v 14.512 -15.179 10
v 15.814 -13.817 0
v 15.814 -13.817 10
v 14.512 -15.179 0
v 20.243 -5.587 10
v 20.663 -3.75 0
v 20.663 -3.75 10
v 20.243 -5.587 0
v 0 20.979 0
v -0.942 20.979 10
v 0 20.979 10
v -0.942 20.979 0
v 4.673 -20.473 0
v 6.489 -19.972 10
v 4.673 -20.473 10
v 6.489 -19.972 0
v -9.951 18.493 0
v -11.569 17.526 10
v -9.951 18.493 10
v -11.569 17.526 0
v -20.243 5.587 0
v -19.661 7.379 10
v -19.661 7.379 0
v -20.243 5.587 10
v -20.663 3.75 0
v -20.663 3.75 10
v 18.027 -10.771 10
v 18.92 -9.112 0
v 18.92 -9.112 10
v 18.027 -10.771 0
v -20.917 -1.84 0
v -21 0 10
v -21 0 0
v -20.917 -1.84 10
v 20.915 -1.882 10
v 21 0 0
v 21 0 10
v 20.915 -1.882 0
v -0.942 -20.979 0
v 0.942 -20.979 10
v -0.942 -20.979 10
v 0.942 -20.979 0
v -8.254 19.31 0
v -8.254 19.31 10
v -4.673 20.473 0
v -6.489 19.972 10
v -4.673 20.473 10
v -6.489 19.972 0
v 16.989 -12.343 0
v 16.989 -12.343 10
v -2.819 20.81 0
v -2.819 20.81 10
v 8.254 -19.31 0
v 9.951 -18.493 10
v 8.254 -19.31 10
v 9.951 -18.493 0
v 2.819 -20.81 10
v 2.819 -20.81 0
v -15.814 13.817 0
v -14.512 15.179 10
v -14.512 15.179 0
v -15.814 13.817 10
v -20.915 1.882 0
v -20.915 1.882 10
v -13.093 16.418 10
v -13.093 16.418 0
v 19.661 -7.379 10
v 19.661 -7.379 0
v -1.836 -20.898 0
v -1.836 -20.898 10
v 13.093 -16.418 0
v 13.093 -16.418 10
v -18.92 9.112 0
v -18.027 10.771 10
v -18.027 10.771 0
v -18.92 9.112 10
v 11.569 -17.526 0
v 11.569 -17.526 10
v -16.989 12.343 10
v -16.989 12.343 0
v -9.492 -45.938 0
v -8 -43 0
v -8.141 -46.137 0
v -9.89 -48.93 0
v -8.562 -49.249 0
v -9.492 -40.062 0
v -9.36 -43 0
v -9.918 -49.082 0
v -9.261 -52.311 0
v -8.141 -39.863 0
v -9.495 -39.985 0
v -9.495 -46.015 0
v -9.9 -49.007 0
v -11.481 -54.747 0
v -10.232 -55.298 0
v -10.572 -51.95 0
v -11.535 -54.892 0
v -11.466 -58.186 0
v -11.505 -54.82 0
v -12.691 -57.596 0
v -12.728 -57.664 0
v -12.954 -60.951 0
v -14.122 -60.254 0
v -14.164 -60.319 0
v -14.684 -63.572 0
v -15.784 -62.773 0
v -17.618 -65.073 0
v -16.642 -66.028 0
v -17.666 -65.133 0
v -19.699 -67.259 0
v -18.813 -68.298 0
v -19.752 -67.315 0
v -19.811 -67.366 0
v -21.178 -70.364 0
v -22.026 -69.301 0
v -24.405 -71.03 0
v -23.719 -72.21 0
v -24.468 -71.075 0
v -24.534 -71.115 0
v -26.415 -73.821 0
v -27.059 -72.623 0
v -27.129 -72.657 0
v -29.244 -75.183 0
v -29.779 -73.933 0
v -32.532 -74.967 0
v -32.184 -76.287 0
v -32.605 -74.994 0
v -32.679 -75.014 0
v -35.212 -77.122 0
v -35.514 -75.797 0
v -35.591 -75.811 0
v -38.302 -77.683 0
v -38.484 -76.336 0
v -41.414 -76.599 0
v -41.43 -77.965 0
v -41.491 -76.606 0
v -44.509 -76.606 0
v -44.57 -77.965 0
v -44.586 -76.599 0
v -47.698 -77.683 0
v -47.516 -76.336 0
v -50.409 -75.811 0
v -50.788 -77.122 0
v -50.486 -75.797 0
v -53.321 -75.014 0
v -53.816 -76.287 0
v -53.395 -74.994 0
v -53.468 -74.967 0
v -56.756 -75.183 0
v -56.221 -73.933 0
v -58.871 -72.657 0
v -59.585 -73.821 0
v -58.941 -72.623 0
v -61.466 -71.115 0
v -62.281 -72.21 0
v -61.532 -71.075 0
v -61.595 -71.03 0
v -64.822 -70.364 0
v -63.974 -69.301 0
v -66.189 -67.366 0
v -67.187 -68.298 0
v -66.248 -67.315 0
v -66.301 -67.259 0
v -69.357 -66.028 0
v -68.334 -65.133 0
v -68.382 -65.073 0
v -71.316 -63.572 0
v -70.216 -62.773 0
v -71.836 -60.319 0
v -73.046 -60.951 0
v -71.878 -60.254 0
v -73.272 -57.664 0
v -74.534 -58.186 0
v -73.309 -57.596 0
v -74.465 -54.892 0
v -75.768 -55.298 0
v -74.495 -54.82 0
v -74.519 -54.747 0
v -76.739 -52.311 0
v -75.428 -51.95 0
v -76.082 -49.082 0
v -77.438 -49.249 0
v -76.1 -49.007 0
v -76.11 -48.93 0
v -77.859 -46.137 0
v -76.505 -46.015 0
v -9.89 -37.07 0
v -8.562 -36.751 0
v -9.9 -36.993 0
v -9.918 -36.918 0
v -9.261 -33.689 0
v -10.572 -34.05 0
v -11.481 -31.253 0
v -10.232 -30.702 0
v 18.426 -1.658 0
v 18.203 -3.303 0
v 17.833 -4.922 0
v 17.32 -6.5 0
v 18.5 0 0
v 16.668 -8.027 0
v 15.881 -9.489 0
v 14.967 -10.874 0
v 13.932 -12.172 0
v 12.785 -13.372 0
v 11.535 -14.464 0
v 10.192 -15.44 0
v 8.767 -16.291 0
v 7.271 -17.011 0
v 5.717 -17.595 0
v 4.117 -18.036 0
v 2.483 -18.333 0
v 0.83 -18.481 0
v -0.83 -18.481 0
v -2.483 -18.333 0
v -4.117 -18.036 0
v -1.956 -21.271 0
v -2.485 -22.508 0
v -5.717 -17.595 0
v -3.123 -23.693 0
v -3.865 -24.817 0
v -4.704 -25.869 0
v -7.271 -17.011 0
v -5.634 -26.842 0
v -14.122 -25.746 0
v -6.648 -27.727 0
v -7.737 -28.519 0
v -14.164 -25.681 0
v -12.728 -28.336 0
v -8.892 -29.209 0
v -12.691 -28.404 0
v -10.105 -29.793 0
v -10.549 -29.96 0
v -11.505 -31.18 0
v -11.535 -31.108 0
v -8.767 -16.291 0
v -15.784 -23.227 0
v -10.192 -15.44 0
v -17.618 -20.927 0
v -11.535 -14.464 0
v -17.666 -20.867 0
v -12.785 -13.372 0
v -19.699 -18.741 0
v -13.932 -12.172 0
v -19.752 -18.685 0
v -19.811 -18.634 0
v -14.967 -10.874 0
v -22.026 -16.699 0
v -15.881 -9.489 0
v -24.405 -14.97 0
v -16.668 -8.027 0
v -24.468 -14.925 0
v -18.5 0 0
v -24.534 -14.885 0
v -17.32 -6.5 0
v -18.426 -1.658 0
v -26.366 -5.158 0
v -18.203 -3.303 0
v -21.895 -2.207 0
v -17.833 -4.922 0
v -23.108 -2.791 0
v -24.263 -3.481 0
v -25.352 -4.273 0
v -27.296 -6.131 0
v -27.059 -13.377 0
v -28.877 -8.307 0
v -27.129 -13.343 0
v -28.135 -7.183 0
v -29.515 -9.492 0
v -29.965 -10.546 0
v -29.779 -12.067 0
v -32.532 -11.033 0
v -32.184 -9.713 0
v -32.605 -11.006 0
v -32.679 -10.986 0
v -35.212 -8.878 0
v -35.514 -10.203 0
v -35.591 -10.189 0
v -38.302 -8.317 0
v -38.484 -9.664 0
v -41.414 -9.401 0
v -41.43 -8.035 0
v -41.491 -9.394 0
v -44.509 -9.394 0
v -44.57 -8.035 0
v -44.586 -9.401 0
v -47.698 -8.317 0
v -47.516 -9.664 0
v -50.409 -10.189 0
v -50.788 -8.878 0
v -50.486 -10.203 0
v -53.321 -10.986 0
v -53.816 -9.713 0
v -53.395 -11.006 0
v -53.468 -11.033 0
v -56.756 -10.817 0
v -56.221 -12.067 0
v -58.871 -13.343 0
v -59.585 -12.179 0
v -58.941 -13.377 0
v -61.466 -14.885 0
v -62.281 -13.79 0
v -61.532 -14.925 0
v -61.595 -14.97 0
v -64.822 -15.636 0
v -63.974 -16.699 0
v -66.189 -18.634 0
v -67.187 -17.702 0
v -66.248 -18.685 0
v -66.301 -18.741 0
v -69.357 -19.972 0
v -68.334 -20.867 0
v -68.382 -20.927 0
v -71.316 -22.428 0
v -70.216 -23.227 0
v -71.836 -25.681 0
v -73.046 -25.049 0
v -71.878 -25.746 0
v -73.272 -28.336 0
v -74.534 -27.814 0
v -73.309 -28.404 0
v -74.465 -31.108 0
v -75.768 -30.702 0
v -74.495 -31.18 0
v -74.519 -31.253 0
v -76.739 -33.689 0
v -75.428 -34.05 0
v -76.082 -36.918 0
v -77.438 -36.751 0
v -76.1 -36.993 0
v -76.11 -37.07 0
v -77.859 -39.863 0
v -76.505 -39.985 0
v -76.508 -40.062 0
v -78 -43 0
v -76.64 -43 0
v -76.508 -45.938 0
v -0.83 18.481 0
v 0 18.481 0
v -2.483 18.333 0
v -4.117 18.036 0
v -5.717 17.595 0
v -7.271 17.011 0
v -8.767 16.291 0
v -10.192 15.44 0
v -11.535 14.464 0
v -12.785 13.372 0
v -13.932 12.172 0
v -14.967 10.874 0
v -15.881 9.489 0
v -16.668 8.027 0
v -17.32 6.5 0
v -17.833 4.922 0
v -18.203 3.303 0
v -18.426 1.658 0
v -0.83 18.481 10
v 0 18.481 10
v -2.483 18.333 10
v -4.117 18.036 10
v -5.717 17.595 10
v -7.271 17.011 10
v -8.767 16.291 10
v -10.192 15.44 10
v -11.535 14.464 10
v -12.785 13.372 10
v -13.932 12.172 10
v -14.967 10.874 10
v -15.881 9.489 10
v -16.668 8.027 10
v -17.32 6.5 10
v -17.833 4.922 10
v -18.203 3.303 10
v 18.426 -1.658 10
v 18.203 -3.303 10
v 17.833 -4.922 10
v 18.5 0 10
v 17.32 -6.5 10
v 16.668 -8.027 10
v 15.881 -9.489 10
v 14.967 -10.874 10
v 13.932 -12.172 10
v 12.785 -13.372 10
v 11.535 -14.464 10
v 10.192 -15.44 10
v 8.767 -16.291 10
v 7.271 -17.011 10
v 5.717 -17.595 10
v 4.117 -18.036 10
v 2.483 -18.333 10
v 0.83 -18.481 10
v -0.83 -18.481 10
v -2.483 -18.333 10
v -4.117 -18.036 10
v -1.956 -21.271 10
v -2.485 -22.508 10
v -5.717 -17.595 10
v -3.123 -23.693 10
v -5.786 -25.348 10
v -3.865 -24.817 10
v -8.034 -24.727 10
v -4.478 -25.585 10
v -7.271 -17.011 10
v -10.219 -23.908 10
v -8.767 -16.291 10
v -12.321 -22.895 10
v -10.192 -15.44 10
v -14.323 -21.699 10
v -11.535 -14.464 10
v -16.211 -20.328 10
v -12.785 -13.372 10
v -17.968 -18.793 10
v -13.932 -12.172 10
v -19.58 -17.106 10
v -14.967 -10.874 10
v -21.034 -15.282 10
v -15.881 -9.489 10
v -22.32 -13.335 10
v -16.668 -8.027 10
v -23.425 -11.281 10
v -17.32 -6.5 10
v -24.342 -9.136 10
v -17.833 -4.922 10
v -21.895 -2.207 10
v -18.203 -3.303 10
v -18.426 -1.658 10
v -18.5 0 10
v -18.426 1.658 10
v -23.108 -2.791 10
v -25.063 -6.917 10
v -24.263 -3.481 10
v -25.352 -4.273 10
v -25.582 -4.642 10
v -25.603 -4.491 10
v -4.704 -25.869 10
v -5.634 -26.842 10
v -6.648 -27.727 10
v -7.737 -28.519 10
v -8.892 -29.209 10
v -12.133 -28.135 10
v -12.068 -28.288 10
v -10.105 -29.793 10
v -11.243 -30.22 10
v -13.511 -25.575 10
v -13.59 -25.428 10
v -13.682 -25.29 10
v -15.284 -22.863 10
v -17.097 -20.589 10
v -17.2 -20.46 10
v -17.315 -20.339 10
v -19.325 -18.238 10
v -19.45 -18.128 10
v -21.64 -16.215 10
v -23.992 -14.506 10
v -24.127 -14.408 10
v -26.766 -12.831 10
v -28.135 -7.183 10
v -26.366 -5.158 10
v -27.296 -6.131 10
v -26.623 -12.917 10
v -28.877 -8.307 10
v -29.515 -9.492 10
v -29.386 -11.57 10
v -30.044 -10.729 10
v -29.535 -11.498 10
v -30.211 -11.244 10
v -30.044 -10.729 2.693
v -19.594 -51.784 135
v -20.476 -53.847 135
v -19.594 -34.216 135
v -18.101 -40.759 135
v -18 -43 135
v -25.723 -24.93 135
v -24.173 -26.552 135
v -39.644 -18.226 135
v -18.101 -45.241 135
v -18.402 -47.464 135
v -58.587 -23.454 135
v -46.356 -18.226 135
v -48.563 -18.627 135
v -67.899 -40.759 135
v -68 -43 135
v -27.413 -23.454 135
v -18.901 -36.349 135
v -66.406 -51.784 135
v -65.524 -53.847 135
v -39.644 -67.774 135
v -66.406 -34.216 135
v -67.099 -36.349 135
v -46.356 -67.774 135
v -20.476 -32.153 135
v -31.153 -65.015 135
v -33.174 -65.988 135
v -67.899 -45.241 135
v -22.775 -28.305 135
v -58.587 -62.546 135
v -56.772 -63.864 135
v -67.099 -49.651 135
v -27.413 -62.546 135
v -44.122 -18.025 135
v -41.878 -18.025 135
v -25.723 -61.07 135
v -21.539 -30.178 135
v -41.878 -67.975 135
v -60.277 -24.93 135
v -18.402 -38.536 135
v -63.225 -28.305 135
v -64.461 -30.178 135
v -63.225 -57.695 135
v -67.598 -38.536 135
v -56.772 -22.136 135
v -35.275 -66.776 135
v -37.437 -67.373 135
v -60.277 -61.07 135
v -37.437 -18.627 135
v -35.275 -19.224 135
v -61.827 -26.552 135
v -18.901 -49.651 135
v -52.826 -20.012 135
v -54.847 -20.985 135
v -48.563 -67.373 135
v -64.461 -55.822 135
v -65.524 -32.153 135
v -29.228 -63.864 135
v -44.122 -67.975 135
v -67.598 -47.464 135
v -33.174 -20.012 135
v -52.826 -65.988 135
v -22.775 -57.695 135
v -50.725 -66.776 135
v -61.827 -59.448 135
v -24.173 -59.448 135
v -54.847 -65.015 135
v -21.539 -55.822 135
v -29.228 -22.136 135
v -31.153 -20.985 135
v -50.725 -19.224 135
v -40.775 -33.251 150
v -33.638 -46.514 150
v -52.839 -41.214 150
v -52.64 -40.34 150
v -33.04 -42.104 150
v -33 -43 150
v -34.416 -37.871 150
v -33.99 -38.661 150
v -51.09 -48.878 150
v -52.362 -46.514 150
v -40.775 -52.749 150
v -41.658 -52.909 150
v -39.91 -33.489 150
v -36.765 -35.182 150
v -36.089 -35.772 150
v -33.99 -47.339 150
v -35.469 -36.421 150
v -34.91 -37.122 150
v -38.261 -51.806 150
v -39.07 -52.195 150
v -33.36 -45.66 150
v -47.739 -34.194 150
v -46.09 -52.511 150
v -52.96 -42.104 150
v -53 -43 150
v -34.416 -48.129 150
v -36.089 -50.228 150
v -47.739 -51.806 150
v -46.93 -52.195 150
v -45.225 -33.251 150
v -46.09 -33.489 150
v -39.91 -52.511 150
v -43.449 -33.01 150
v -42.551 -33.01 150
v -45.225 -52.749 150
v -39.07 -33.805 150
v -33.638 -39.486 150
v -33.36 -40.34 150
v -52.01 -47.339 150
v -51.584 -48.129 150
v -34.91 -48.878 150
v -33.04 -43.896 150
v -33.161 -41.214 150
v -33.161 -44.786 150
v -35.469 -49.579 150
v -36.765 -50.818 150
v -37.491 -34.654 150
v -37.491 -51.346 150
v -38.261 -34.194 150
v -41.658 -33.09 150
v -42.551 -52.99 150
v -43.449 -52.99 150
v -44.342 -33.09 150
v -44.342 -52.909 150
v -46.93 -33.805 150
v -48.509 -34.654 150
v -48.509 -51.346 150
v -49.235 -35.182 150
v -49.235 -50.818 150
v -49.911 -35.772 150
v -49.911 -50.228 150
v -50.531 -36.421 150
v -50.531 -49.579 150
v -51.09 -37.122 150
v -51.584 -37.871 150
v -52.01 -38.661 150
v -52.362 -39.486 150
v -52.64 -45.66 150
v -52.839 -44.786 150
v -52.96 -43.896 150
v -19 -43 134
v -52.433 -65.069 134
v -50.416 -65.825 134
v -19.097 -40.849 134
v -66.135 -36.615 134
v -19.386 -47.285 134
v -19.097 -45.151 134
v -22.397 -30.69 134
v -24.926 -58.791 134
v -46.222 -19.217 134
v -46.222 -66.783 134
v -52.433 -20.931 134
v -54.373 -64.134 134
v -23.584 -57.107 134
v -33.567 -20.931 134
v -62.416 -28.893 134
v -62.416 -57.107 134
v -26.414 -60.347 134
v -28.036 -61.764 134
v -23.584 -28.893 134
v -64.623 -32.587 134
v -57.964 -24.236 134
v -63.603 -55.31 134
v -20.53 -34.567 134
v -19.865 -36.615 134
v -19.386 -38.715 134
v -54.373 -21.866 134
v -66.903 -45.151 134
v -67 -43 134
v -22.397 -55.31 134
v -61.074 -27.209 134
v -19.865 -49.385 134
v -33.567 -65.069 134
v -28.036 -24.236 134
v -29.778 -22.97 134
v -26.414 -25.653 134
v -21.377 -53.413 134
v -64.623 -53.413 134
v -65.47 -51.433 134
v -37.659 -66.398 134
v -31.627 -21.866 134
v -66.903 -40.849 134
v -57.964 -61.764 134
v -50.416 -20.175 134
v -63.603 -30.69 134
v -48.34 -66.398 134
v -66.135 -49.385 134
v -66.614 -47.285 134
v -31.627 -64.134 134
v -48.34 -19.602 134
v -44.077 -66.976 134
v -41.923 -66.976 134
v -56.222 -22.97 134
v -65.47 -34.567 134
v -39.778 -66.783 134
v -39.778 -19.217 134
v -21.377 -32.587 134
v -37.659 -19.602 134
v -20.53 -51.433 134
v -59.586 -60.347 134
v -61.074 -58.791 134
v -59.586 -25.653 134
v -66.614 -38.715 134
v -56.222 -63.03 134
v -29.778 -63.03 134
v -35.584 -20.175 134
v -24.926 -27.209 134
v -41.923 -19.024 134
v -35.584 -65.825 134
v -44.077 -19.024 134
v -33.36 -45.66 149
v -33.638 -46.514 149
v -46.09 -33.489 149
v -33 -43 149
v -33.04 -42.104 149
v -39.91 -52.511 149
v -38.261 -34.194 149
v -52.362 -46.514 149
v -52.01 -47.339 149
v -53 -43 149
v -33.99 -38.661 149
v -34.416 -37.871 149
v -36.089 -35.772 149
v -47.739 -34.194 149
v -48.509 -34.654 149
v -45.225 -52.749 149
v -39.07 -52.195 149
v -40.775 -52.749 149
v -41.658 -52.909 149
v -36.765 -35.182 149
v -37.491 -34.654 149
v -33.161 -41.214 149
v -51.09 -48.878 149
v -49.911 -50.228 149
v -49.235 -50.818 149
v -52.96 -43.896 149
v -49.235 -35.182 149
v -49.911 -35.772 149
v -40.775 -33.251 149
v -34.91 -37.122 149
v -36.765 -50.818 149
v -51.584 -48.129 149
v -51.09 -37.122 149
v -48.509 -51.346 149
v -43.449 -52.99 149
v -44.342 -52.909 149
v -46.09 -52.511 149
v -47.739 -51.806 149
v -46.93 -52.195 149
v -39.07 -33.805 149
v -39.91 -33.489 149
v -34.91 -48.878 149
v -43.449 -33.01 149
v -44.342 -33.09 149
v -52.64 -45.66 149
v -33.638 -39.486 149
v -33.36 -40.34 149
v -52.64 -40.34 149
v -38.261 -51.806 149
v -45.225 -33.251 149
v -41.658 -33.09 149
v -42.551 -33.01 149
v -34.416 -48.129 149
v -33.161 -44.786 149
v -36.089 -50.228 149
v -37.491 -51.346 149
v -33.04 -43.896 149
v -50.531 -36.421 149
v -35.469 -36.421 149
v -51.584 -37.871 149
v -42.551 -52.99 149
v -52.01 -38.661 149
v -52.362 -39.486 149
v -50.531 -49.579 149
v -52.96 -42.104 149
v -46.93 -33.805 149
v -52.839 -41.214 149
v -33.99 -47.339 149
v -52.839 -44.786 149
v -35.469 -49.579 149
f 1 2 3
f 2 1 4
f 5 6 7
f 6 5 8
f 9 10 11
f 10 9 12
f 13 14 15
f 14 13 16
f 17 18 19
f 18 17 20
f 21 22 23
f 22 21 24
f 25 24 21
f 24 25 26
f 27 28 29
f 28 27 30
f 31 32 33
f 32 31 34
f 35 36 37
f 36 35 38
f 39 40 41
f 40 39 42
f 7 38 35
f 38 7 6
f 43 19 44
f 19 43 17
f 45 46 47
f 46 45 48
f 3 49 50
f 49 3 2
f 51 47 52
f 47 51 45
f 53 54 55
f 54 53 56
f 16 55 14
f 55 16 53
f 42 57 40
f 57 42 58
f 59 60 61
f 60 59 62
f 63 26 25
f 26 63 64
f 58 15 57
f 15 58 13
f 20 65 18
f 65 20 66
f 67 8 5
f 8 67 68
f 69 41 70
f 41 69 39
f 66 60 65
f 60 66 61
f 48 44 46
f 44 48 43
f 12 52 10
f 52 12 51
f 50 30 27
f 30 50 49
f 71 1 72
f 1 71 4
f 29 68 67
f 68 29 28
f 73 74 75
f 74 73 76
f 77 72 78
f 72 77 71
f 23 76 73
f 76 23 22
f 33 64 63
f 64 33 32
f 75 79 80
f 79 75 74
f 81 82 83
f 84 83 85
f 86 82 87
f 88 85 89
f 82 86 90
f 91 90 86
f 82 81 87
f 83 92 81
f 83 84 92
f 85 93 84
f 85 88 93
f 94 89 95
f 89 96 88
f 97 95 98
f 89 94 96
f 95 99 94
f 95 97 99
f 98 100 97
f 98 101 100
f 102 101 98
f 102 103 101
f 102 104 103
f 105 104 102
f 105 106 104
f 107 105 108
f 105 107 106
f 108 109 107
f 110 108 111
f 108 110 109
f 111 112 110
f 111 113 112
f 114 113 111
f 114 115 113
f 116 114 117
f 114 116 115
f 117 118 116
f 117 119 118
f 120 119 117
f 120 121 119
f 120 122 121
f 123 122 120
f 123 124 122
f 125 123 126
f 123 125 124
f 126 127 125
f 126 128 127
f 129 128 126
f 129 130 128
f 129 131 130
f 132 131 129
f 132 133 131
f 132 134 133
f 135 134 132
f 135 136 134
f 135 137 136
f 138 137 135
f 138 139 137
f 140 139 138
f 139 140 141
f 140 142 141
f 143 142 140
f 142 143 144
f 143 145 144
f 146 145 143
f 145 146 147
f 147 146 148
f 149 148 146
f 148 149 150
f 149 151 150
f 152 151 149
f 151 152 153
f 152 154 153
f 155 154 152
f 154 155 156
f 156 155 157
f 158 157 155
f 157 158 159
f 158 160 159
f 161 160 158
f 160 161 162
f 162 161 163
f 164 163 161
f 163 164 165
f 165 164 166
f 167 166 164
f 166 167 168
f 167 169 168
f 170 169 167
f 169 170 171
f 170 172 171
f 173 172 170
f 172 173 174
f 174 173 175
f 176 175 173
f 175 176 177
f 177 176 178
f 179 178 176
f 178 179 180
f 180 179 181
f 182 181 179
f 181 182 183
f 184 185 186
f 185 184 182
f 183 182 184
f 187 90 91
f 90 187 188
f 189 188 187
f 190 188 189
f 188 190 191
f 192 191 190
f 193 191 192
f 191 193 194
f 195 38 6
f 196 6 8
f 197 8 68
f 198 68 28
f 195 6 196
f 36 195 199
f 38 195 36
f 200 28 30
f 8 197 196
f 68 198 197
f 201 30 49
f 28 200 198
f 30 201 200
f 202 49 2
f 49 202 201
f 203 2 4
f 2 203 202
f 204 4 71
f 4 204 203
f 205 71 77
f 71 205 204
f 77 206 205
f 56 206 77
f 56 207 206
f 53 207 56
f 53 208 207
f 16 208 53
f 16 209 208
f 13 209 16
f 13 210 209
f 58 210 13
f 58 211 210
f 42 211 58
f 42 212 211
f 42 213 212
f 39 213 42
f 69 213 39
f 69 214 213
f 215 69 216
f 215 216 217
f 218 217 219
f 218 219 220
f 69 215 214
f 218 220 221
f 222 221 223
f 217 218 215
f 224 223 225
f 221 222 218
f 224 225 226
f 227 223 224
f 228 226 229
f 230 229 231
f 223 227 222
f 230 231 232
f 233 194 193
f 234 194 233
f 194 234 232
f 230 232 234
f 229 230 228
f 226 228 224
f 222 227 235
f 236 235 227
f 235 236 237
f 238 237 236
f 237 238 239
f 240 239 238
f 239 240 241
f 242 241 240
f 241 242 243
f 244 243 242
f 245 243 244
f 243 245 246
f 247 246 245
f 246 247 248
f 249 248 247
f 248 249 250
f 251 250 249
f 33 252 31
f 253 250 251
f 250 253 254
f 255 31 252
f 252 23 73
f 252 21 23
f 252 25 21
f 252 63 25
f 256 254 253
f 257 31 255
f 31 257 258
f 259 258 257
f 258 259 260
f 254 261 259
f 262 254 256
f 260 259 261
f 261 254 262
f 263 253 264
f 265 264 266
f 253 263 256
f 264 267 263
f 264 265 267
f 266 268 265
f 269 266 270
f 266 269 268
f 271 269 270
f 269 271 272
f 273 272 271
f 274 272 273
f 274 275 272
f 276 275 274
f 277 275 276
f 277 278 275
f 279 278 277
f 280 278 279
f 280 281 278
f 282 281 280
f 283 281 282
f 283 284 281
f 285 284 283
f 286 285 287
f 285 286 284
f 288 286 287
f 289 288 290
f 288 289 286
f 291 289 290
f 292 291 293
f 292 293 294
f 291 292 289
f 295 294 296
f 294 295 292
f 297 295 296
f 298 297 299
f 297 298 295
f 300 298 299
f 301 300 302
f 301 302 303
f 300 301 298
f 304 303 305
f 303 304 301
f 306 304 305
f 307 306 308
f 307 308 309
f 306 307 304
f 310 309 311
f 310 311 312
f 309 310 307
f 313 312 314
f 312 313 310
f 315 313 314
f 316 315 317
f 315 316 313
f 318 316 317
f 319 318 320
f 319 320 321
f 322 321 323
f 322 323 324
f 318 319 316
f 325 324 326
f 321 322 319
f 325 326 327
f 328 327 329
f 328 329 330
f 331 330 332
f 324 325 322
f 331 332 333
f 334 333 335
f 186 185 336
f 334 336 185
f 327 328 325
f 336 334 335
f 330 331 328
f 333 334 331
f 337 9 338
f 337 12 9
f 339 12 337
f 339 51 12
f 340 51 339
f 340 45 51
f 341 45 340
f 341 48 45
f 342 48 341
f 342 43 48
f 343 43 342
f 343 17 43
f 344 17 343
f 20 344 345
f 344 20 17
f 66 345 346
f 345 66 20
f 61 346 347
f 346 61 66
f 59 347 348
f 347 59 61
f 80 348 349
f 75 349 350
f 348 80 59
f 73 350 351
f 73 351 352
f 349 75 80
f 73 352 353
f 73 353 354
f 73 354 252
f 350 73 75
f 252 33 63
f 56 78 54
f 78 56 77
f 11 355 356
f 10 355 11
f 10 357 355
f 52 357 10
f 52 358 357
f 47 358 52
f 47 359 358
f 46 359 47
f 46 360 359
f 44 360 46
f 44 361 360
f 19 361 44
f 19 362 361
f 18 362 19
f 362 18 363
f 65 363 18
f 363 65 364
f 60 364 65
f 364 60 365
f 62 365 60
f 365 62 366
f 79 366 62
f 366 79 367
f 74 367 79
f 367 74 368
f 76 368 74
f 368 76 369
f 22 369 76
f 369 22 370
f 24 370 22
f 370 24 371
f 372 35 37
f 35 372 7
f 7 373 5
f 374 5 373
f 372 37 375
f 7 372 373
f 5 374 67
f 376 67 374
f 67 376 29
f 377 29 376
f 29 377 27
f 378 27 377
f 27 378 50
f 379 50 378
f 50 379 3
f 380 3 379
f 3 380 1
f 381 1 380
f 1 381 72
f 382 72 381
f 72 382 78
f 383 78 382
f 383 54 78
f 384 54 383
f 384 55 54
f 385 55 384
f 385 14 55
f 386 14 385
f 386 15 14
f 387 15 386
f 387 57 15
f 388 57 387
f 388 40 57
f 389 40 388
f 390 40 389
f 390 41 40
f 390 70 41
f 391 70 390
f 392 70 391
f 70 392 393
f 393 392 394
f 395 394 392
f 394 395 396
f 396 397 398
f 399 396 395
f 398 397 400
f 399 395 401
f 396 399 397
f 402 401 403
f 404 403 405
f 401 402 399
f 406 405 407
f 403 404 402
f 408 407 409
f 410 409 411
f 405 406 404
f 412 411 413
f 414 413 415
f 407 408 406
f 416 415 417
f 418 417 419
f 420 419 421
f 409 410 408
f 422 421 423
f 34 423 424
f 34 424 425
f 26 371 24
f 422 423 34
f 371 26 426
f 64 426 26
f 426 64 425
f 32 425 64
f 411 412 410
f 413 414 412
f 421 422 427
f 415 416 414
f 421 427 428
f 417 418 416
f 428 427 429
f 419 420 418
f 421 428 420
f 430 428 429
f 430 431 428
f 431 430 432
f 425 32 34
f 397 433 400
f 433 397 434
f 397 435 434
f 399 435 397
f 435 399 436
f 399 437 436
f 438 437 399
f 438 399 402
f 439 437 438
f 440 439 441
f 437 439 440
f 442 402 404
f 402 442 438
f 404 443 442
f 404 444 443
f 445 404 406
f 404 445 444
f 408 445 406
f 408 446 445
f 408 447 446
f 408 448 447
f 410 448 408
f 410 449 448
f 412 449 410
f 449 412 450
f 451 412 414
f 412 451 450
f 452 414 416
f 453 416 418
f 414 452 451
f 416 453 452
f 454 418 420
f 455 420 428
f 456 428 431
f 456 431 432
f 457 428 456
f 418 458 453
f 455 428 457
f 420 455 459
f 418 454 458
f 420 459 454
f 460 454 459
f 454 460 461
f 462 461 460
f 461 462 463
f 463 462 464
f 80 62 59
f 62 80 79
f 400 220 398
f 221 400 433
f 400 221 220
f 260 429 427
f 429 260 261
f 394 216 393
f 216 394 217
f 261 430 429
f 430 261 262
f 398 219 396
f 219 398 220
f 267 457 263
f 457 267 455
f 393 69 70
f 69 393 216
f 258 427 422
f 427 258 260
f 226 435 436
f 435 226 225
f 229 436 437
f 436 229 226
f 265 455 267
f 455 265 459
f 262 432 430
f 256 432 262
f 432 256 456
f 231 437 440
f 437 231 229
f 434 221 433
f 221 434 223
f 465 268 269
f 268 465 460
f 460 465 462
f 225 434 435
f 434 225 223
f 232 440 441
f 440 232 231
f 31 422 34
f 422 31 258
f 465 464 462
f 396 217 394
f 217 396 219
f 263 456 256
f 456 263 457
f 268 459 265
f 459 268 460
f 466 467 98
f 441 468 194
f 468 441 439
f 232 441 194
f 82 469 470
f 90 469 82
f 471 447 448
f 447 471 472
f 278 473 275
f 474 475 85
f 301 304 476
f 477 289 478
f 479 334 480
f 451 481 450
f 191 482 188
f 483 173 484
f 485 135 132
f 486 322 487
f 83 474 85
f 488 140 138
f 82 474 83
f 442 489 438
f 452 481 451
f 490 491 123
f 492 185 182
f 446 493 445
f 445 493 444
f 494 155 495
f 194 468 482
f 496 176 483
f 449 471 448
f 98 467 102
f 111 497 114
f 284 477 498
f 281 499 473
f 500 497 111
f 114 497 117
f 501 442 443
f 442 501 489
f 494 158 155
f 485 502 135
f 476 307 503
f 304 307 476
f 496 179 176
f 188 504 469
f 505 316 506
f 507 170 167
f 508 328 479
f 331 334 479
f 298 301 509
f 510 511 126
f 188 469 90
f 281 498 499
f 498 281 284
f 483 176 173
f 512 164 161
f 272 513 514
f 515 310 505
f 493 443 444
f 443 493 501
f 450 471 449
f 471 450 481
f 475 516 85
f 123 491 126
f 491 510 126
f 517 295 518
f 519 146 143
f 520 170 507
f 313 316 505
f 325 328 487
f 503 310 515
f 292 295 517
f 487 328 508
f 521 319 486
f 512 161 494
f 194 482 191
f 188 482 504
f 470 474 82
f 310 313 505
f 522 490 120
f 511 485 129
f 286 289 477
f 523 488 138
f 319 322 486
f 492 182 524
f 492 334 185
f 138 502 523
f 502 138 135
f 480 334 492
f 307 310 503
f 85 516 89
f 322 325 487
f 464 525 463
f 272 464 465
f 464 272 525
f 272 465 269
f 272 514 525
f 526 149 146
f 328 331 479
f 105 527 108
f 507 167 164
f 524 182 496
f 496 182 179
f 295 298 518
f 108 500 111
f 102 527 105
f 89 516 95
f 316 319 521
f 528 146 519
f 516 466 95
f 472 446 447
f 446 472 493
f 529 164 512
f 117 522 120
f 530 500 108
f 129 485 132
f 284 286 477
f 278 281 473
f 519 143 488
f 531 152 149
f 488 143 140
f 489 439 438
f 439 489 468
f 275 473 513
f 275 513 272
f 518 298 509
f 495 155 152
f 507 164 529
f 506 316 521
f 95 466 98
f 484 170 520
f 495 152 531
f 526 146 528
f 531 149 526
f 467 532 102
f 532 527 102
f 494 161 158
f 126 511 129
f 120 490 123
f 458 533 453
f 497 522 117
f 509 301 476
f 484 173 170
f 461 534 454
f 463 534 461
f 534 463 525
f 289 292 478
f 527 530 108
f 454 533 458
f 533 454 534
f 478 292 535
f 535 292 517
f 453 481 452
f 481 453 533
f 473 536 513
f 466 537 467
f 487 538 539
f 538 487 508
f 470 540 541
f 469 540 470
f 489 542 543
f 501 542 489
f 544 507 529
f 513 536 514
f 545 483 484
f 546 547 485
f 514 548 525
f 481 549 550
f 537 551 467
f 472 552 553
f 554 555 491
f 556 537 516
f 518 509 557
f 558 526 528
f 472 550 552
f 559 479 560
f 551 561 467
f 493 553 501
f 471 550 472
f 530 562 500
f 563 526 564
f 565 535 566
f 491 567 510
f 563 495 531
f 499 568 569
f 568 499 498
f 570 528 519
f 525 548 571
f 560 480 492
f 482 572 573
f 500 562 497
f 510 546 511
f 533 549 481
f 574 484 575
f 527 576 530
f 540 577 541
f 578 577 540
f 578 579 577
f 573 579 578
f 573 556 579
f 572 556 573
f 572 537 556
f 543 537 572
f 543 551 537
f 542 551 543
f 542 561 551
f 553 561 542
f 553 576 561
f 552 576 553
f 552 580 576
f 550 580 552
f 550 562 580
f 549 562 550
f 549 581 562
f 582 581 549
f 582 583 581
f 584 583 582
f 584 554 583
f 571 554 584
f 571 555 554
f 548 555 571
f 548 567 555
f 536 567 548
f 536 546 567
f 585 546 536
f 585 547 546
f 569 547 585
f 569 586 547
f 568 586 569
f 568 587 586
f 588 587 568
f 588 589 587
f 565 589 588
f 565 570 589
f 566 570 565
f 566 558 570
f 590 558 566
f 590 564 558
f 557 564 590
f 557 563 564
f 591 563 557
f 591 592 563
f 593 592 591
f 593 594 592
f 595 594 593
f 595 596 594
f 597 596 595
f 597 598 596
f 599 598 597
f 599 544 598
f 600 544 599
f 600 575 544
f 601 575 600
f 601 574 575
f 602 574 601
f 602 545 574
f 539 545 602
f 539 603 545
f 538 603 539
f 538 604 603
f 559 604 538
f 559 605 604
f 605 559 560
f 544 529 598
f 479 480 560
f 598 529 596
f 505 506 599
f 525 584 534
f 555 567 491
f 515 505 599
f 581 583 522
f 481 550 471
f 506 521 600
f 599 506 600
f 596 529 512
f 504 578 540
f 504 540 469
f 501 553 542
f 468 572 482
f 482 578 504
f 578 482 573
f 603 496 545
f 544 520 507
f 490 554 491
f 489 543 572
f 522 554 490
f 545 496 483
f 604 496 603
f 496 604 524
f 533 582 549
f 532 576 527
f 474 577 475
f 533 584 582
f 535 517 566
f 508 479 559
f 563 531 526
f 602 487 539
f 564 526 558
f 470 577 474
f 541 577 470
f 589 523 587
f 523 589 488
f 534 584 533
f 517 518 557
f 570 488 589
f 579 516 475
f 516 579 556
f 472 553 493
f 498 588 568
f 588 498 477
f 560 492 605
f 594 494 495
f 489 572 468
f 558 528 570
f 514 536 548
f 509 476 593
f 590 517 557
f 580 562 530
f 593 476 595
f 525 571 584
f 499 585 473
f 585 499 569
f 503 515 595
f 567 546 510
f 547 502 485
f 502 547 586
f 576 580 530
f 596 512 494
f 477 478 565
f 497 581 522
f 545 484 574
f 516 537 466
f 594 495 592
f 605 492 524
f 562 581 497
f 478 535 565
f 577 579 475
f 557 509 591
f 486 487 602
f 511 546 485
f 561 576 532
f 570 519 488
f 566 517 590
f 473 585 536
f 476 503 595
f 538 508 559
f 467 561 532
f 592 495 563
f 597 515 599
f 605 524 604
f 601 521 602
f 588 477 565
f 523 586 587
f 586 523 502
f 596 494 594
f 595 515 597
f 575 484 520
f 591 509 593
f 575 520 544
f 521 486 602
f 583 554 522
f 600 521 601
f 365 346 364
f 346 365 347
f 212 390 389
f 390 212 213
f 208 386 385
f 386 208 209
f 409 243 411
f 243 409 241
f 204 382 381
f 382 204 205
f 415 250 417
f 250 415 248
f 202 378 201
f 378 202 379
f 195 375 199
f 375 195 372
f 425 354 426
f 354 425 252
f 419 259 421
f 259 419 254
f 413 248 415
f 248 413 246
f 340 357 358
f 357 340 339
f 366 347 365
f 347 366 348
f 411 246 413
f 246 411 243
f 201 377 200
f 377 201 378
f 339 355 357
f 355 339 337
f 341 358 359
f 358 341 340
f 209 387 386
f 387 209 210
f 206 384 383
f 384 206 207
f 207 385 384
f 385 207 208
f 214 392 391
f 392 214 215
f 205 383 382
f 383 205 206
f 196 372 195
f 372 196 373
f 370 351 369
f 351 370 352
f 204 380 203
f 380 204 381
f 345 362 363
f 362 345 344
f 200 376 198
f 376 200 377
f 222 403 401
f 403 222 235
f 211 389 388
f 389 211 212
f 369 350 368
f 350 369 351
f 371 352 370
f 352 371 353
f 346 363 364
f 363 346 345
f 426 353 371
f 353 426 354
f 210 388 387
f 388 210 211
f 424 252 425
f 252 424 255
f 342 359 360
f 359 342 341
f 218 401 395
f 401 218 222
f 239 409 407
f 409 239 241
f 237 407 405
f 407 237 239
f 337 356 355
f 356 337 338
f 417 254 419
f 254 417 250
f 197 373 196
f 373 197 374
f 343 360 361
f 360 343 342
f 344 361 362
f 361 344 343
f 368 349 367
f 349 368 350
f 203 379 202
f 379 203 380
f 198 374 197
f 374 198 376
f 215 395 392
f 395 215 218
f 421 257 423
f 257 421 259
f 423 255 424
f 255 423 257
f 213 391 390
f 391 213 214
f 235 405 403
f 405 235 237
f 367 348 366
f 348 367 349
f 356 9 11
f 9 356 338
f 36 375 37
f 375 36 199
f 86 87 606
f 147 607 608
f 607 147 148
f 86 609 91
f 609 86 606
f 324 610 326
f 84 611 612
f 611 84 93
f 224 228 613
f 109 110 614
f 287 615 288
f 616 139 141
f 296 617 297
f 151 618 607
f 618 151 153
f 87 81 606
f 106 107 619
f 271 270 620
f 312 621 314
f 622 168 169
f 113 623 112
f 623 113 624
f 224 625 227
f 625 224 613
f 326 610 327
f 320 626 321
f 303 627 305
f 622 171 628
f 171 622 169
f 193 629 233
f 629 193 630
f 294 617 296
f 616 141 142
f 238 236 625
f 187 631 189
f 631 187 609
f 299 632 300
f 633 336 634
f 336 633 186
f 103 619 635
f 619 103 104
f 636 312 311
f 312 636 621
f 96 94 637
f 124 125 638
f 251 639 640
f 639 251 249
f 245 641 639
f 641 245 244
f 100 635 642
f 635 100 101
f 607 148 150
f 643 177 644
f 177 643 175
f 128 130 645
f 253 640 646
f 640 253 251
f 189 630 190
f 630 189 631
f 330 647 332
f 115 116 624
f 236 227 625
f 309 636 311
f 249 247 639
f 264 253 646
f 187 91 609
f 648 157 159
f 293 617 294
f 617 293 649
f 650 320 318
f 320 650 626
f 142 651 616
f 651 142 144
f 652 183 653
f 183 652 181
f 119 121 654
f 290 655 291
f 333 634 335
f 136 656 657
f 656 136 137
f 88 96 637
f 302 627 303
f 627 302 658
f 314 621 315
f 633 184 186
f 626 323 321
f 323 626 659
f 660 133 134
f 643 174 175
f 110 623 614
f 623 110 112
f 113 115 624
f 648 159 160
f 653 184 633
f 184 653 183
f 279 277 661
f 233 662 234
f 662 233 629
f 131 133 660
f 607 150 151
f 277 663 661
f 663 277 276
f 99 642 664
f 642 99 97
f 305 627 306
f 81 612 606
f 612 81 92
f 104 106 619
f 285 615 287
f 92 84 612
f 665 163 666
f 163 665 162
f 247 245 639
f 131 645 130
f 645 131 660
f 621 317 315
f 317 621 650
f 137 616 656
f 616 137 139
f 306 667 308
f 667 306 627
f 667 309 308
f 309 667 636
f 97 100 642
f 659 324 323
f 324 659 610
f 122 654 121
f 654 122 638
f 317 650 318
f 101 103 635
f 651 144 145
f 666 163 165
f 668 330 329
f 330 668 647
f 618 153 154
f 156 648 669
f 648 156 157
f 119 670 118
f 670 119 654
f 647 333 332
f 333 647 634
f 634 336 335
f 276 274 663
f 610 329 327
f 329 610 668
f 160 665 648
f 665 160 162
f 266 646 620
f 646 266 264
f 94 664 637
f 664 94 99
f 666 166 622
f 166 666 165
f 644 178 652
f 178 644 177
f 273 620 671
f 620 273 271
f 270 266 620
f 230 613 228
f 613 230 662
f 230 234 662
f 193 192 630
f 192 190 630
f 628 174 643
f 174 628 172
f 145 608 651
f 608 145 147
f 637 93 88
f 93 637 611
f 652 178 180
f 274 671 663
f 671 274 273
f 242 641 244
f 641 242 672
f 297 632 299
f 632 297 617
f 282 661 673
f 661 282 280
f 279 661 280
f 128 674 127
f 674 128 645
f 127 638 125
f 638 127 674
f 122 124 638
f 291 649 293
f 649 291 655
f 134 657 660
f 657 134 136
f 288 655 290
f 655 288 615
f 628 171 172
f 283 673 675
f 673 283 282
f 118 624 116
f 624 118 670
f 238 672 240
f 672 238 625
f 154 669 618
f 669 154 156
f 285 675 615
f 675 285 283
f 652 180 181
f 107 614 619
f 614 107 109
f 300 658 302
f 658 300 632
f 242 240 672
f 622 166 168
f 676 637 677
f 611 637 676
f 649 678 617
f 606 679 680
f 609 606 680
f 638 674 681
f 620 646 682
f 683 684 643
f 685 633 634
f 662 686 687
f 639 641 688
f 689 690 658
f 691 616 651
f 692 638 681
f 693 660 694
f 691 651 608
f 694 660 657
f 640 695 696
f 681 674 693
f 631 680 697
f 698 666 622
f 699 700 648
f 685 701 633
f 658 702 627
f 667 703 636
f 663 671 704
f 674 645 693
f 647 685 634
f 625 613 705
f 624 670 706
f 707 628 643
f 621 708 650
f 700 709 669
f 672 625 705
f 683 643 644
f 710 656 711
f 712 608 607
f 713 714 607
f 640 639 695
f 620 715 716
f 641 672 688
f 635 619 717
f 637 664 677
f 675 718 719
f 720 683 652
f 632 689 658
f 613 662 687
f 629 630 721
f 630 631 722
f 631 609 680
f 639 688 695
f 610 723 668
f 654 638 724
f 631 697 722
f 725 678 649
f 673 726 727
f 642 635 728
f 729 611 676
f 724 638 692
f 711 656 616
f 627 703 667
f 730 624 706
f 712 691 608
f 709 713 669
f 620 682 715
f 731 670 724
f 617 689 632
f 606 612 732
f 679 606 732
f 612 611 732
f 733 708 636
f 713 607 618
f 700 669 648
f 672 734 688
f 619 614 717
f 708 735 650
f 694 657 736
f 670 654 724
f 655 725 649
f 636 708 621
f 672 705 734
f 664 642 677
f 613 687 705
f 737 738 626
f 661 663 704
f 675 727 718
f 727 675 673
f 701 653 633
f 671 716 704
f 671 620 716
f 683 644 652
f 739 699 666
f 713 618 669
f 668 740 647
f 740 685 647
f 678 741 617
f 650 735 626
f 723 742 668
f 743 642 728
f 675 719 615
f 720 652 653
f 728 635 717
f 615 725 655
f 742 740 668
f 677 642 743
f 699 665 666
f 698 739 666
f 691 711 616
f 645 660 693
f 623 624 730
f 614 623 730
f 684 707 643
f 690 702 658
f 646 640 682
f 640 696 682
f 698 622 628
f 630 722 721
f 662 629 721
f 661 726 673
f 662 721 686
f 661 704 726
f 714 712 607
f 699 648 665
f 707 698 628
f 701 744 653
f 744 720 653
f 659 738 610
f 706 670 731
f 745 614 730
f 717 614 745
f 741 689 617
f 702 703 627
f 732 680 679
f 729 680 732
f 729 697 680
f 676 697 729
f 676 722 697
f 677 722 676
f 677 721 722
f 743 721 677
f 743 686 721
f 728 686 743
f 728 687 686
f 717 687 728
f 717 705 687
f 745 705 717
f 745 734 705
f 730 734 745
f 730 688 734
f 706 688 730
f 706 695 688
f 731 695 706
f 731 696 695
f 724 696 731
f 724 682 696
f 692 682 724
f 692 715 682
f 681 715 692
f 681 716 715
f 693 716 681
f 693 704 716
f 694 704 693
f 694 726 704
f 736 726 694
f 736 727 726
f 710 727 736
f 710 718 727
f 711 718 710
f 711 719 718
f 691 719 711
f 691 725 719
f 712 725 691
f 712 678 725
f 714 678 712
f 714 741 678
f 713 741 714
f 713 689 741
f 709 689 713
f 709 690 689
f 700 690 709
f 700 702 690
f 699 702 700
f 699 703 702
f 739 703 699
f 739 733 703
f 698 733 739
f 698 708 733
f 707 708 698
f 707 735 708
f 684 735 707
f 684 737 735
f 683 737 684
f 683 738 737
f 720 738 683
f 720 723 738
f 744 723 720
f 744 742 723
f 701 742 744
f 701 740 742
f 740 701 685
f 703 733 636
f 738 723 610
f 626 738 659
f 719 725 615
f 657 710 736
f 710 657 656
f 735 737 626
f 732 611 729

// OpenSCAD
$fn = 70;

gap = 5;

difference() {
    union() {
        cylinder(d = 42, h = 10);
        translate([-16, -16, 0]) cylinder(d = 30, h = 10);
        translate([-38 - gap, -38 - gap, 0]) cylinder(d1 = 70, d2 = 50, h = 135);
        translate([-38 - gap, -38 - gap, 135]) cylinder(d1 = 50, d2 = 20, h = 15);
    }
    translate([0, 0, -1]) cylinder(d = 37, h = 12);
    translate([0, 0, -1]) cube([25, 25, 12]);
    translate([-38 - gap, -38 - gap, -5]) cylinder(d1 = 68, d2 = 48, h = 139);
    translate([-38 - gap, -38 - gap, 134]) cylinder(d1 = 48, d2 = 20, h = 15);
    translate([0, 0, 10]) cylinder(d = 52, h = 70);
    //translate([-88, -100, -5]) cube([50, 100, 300]);
}
